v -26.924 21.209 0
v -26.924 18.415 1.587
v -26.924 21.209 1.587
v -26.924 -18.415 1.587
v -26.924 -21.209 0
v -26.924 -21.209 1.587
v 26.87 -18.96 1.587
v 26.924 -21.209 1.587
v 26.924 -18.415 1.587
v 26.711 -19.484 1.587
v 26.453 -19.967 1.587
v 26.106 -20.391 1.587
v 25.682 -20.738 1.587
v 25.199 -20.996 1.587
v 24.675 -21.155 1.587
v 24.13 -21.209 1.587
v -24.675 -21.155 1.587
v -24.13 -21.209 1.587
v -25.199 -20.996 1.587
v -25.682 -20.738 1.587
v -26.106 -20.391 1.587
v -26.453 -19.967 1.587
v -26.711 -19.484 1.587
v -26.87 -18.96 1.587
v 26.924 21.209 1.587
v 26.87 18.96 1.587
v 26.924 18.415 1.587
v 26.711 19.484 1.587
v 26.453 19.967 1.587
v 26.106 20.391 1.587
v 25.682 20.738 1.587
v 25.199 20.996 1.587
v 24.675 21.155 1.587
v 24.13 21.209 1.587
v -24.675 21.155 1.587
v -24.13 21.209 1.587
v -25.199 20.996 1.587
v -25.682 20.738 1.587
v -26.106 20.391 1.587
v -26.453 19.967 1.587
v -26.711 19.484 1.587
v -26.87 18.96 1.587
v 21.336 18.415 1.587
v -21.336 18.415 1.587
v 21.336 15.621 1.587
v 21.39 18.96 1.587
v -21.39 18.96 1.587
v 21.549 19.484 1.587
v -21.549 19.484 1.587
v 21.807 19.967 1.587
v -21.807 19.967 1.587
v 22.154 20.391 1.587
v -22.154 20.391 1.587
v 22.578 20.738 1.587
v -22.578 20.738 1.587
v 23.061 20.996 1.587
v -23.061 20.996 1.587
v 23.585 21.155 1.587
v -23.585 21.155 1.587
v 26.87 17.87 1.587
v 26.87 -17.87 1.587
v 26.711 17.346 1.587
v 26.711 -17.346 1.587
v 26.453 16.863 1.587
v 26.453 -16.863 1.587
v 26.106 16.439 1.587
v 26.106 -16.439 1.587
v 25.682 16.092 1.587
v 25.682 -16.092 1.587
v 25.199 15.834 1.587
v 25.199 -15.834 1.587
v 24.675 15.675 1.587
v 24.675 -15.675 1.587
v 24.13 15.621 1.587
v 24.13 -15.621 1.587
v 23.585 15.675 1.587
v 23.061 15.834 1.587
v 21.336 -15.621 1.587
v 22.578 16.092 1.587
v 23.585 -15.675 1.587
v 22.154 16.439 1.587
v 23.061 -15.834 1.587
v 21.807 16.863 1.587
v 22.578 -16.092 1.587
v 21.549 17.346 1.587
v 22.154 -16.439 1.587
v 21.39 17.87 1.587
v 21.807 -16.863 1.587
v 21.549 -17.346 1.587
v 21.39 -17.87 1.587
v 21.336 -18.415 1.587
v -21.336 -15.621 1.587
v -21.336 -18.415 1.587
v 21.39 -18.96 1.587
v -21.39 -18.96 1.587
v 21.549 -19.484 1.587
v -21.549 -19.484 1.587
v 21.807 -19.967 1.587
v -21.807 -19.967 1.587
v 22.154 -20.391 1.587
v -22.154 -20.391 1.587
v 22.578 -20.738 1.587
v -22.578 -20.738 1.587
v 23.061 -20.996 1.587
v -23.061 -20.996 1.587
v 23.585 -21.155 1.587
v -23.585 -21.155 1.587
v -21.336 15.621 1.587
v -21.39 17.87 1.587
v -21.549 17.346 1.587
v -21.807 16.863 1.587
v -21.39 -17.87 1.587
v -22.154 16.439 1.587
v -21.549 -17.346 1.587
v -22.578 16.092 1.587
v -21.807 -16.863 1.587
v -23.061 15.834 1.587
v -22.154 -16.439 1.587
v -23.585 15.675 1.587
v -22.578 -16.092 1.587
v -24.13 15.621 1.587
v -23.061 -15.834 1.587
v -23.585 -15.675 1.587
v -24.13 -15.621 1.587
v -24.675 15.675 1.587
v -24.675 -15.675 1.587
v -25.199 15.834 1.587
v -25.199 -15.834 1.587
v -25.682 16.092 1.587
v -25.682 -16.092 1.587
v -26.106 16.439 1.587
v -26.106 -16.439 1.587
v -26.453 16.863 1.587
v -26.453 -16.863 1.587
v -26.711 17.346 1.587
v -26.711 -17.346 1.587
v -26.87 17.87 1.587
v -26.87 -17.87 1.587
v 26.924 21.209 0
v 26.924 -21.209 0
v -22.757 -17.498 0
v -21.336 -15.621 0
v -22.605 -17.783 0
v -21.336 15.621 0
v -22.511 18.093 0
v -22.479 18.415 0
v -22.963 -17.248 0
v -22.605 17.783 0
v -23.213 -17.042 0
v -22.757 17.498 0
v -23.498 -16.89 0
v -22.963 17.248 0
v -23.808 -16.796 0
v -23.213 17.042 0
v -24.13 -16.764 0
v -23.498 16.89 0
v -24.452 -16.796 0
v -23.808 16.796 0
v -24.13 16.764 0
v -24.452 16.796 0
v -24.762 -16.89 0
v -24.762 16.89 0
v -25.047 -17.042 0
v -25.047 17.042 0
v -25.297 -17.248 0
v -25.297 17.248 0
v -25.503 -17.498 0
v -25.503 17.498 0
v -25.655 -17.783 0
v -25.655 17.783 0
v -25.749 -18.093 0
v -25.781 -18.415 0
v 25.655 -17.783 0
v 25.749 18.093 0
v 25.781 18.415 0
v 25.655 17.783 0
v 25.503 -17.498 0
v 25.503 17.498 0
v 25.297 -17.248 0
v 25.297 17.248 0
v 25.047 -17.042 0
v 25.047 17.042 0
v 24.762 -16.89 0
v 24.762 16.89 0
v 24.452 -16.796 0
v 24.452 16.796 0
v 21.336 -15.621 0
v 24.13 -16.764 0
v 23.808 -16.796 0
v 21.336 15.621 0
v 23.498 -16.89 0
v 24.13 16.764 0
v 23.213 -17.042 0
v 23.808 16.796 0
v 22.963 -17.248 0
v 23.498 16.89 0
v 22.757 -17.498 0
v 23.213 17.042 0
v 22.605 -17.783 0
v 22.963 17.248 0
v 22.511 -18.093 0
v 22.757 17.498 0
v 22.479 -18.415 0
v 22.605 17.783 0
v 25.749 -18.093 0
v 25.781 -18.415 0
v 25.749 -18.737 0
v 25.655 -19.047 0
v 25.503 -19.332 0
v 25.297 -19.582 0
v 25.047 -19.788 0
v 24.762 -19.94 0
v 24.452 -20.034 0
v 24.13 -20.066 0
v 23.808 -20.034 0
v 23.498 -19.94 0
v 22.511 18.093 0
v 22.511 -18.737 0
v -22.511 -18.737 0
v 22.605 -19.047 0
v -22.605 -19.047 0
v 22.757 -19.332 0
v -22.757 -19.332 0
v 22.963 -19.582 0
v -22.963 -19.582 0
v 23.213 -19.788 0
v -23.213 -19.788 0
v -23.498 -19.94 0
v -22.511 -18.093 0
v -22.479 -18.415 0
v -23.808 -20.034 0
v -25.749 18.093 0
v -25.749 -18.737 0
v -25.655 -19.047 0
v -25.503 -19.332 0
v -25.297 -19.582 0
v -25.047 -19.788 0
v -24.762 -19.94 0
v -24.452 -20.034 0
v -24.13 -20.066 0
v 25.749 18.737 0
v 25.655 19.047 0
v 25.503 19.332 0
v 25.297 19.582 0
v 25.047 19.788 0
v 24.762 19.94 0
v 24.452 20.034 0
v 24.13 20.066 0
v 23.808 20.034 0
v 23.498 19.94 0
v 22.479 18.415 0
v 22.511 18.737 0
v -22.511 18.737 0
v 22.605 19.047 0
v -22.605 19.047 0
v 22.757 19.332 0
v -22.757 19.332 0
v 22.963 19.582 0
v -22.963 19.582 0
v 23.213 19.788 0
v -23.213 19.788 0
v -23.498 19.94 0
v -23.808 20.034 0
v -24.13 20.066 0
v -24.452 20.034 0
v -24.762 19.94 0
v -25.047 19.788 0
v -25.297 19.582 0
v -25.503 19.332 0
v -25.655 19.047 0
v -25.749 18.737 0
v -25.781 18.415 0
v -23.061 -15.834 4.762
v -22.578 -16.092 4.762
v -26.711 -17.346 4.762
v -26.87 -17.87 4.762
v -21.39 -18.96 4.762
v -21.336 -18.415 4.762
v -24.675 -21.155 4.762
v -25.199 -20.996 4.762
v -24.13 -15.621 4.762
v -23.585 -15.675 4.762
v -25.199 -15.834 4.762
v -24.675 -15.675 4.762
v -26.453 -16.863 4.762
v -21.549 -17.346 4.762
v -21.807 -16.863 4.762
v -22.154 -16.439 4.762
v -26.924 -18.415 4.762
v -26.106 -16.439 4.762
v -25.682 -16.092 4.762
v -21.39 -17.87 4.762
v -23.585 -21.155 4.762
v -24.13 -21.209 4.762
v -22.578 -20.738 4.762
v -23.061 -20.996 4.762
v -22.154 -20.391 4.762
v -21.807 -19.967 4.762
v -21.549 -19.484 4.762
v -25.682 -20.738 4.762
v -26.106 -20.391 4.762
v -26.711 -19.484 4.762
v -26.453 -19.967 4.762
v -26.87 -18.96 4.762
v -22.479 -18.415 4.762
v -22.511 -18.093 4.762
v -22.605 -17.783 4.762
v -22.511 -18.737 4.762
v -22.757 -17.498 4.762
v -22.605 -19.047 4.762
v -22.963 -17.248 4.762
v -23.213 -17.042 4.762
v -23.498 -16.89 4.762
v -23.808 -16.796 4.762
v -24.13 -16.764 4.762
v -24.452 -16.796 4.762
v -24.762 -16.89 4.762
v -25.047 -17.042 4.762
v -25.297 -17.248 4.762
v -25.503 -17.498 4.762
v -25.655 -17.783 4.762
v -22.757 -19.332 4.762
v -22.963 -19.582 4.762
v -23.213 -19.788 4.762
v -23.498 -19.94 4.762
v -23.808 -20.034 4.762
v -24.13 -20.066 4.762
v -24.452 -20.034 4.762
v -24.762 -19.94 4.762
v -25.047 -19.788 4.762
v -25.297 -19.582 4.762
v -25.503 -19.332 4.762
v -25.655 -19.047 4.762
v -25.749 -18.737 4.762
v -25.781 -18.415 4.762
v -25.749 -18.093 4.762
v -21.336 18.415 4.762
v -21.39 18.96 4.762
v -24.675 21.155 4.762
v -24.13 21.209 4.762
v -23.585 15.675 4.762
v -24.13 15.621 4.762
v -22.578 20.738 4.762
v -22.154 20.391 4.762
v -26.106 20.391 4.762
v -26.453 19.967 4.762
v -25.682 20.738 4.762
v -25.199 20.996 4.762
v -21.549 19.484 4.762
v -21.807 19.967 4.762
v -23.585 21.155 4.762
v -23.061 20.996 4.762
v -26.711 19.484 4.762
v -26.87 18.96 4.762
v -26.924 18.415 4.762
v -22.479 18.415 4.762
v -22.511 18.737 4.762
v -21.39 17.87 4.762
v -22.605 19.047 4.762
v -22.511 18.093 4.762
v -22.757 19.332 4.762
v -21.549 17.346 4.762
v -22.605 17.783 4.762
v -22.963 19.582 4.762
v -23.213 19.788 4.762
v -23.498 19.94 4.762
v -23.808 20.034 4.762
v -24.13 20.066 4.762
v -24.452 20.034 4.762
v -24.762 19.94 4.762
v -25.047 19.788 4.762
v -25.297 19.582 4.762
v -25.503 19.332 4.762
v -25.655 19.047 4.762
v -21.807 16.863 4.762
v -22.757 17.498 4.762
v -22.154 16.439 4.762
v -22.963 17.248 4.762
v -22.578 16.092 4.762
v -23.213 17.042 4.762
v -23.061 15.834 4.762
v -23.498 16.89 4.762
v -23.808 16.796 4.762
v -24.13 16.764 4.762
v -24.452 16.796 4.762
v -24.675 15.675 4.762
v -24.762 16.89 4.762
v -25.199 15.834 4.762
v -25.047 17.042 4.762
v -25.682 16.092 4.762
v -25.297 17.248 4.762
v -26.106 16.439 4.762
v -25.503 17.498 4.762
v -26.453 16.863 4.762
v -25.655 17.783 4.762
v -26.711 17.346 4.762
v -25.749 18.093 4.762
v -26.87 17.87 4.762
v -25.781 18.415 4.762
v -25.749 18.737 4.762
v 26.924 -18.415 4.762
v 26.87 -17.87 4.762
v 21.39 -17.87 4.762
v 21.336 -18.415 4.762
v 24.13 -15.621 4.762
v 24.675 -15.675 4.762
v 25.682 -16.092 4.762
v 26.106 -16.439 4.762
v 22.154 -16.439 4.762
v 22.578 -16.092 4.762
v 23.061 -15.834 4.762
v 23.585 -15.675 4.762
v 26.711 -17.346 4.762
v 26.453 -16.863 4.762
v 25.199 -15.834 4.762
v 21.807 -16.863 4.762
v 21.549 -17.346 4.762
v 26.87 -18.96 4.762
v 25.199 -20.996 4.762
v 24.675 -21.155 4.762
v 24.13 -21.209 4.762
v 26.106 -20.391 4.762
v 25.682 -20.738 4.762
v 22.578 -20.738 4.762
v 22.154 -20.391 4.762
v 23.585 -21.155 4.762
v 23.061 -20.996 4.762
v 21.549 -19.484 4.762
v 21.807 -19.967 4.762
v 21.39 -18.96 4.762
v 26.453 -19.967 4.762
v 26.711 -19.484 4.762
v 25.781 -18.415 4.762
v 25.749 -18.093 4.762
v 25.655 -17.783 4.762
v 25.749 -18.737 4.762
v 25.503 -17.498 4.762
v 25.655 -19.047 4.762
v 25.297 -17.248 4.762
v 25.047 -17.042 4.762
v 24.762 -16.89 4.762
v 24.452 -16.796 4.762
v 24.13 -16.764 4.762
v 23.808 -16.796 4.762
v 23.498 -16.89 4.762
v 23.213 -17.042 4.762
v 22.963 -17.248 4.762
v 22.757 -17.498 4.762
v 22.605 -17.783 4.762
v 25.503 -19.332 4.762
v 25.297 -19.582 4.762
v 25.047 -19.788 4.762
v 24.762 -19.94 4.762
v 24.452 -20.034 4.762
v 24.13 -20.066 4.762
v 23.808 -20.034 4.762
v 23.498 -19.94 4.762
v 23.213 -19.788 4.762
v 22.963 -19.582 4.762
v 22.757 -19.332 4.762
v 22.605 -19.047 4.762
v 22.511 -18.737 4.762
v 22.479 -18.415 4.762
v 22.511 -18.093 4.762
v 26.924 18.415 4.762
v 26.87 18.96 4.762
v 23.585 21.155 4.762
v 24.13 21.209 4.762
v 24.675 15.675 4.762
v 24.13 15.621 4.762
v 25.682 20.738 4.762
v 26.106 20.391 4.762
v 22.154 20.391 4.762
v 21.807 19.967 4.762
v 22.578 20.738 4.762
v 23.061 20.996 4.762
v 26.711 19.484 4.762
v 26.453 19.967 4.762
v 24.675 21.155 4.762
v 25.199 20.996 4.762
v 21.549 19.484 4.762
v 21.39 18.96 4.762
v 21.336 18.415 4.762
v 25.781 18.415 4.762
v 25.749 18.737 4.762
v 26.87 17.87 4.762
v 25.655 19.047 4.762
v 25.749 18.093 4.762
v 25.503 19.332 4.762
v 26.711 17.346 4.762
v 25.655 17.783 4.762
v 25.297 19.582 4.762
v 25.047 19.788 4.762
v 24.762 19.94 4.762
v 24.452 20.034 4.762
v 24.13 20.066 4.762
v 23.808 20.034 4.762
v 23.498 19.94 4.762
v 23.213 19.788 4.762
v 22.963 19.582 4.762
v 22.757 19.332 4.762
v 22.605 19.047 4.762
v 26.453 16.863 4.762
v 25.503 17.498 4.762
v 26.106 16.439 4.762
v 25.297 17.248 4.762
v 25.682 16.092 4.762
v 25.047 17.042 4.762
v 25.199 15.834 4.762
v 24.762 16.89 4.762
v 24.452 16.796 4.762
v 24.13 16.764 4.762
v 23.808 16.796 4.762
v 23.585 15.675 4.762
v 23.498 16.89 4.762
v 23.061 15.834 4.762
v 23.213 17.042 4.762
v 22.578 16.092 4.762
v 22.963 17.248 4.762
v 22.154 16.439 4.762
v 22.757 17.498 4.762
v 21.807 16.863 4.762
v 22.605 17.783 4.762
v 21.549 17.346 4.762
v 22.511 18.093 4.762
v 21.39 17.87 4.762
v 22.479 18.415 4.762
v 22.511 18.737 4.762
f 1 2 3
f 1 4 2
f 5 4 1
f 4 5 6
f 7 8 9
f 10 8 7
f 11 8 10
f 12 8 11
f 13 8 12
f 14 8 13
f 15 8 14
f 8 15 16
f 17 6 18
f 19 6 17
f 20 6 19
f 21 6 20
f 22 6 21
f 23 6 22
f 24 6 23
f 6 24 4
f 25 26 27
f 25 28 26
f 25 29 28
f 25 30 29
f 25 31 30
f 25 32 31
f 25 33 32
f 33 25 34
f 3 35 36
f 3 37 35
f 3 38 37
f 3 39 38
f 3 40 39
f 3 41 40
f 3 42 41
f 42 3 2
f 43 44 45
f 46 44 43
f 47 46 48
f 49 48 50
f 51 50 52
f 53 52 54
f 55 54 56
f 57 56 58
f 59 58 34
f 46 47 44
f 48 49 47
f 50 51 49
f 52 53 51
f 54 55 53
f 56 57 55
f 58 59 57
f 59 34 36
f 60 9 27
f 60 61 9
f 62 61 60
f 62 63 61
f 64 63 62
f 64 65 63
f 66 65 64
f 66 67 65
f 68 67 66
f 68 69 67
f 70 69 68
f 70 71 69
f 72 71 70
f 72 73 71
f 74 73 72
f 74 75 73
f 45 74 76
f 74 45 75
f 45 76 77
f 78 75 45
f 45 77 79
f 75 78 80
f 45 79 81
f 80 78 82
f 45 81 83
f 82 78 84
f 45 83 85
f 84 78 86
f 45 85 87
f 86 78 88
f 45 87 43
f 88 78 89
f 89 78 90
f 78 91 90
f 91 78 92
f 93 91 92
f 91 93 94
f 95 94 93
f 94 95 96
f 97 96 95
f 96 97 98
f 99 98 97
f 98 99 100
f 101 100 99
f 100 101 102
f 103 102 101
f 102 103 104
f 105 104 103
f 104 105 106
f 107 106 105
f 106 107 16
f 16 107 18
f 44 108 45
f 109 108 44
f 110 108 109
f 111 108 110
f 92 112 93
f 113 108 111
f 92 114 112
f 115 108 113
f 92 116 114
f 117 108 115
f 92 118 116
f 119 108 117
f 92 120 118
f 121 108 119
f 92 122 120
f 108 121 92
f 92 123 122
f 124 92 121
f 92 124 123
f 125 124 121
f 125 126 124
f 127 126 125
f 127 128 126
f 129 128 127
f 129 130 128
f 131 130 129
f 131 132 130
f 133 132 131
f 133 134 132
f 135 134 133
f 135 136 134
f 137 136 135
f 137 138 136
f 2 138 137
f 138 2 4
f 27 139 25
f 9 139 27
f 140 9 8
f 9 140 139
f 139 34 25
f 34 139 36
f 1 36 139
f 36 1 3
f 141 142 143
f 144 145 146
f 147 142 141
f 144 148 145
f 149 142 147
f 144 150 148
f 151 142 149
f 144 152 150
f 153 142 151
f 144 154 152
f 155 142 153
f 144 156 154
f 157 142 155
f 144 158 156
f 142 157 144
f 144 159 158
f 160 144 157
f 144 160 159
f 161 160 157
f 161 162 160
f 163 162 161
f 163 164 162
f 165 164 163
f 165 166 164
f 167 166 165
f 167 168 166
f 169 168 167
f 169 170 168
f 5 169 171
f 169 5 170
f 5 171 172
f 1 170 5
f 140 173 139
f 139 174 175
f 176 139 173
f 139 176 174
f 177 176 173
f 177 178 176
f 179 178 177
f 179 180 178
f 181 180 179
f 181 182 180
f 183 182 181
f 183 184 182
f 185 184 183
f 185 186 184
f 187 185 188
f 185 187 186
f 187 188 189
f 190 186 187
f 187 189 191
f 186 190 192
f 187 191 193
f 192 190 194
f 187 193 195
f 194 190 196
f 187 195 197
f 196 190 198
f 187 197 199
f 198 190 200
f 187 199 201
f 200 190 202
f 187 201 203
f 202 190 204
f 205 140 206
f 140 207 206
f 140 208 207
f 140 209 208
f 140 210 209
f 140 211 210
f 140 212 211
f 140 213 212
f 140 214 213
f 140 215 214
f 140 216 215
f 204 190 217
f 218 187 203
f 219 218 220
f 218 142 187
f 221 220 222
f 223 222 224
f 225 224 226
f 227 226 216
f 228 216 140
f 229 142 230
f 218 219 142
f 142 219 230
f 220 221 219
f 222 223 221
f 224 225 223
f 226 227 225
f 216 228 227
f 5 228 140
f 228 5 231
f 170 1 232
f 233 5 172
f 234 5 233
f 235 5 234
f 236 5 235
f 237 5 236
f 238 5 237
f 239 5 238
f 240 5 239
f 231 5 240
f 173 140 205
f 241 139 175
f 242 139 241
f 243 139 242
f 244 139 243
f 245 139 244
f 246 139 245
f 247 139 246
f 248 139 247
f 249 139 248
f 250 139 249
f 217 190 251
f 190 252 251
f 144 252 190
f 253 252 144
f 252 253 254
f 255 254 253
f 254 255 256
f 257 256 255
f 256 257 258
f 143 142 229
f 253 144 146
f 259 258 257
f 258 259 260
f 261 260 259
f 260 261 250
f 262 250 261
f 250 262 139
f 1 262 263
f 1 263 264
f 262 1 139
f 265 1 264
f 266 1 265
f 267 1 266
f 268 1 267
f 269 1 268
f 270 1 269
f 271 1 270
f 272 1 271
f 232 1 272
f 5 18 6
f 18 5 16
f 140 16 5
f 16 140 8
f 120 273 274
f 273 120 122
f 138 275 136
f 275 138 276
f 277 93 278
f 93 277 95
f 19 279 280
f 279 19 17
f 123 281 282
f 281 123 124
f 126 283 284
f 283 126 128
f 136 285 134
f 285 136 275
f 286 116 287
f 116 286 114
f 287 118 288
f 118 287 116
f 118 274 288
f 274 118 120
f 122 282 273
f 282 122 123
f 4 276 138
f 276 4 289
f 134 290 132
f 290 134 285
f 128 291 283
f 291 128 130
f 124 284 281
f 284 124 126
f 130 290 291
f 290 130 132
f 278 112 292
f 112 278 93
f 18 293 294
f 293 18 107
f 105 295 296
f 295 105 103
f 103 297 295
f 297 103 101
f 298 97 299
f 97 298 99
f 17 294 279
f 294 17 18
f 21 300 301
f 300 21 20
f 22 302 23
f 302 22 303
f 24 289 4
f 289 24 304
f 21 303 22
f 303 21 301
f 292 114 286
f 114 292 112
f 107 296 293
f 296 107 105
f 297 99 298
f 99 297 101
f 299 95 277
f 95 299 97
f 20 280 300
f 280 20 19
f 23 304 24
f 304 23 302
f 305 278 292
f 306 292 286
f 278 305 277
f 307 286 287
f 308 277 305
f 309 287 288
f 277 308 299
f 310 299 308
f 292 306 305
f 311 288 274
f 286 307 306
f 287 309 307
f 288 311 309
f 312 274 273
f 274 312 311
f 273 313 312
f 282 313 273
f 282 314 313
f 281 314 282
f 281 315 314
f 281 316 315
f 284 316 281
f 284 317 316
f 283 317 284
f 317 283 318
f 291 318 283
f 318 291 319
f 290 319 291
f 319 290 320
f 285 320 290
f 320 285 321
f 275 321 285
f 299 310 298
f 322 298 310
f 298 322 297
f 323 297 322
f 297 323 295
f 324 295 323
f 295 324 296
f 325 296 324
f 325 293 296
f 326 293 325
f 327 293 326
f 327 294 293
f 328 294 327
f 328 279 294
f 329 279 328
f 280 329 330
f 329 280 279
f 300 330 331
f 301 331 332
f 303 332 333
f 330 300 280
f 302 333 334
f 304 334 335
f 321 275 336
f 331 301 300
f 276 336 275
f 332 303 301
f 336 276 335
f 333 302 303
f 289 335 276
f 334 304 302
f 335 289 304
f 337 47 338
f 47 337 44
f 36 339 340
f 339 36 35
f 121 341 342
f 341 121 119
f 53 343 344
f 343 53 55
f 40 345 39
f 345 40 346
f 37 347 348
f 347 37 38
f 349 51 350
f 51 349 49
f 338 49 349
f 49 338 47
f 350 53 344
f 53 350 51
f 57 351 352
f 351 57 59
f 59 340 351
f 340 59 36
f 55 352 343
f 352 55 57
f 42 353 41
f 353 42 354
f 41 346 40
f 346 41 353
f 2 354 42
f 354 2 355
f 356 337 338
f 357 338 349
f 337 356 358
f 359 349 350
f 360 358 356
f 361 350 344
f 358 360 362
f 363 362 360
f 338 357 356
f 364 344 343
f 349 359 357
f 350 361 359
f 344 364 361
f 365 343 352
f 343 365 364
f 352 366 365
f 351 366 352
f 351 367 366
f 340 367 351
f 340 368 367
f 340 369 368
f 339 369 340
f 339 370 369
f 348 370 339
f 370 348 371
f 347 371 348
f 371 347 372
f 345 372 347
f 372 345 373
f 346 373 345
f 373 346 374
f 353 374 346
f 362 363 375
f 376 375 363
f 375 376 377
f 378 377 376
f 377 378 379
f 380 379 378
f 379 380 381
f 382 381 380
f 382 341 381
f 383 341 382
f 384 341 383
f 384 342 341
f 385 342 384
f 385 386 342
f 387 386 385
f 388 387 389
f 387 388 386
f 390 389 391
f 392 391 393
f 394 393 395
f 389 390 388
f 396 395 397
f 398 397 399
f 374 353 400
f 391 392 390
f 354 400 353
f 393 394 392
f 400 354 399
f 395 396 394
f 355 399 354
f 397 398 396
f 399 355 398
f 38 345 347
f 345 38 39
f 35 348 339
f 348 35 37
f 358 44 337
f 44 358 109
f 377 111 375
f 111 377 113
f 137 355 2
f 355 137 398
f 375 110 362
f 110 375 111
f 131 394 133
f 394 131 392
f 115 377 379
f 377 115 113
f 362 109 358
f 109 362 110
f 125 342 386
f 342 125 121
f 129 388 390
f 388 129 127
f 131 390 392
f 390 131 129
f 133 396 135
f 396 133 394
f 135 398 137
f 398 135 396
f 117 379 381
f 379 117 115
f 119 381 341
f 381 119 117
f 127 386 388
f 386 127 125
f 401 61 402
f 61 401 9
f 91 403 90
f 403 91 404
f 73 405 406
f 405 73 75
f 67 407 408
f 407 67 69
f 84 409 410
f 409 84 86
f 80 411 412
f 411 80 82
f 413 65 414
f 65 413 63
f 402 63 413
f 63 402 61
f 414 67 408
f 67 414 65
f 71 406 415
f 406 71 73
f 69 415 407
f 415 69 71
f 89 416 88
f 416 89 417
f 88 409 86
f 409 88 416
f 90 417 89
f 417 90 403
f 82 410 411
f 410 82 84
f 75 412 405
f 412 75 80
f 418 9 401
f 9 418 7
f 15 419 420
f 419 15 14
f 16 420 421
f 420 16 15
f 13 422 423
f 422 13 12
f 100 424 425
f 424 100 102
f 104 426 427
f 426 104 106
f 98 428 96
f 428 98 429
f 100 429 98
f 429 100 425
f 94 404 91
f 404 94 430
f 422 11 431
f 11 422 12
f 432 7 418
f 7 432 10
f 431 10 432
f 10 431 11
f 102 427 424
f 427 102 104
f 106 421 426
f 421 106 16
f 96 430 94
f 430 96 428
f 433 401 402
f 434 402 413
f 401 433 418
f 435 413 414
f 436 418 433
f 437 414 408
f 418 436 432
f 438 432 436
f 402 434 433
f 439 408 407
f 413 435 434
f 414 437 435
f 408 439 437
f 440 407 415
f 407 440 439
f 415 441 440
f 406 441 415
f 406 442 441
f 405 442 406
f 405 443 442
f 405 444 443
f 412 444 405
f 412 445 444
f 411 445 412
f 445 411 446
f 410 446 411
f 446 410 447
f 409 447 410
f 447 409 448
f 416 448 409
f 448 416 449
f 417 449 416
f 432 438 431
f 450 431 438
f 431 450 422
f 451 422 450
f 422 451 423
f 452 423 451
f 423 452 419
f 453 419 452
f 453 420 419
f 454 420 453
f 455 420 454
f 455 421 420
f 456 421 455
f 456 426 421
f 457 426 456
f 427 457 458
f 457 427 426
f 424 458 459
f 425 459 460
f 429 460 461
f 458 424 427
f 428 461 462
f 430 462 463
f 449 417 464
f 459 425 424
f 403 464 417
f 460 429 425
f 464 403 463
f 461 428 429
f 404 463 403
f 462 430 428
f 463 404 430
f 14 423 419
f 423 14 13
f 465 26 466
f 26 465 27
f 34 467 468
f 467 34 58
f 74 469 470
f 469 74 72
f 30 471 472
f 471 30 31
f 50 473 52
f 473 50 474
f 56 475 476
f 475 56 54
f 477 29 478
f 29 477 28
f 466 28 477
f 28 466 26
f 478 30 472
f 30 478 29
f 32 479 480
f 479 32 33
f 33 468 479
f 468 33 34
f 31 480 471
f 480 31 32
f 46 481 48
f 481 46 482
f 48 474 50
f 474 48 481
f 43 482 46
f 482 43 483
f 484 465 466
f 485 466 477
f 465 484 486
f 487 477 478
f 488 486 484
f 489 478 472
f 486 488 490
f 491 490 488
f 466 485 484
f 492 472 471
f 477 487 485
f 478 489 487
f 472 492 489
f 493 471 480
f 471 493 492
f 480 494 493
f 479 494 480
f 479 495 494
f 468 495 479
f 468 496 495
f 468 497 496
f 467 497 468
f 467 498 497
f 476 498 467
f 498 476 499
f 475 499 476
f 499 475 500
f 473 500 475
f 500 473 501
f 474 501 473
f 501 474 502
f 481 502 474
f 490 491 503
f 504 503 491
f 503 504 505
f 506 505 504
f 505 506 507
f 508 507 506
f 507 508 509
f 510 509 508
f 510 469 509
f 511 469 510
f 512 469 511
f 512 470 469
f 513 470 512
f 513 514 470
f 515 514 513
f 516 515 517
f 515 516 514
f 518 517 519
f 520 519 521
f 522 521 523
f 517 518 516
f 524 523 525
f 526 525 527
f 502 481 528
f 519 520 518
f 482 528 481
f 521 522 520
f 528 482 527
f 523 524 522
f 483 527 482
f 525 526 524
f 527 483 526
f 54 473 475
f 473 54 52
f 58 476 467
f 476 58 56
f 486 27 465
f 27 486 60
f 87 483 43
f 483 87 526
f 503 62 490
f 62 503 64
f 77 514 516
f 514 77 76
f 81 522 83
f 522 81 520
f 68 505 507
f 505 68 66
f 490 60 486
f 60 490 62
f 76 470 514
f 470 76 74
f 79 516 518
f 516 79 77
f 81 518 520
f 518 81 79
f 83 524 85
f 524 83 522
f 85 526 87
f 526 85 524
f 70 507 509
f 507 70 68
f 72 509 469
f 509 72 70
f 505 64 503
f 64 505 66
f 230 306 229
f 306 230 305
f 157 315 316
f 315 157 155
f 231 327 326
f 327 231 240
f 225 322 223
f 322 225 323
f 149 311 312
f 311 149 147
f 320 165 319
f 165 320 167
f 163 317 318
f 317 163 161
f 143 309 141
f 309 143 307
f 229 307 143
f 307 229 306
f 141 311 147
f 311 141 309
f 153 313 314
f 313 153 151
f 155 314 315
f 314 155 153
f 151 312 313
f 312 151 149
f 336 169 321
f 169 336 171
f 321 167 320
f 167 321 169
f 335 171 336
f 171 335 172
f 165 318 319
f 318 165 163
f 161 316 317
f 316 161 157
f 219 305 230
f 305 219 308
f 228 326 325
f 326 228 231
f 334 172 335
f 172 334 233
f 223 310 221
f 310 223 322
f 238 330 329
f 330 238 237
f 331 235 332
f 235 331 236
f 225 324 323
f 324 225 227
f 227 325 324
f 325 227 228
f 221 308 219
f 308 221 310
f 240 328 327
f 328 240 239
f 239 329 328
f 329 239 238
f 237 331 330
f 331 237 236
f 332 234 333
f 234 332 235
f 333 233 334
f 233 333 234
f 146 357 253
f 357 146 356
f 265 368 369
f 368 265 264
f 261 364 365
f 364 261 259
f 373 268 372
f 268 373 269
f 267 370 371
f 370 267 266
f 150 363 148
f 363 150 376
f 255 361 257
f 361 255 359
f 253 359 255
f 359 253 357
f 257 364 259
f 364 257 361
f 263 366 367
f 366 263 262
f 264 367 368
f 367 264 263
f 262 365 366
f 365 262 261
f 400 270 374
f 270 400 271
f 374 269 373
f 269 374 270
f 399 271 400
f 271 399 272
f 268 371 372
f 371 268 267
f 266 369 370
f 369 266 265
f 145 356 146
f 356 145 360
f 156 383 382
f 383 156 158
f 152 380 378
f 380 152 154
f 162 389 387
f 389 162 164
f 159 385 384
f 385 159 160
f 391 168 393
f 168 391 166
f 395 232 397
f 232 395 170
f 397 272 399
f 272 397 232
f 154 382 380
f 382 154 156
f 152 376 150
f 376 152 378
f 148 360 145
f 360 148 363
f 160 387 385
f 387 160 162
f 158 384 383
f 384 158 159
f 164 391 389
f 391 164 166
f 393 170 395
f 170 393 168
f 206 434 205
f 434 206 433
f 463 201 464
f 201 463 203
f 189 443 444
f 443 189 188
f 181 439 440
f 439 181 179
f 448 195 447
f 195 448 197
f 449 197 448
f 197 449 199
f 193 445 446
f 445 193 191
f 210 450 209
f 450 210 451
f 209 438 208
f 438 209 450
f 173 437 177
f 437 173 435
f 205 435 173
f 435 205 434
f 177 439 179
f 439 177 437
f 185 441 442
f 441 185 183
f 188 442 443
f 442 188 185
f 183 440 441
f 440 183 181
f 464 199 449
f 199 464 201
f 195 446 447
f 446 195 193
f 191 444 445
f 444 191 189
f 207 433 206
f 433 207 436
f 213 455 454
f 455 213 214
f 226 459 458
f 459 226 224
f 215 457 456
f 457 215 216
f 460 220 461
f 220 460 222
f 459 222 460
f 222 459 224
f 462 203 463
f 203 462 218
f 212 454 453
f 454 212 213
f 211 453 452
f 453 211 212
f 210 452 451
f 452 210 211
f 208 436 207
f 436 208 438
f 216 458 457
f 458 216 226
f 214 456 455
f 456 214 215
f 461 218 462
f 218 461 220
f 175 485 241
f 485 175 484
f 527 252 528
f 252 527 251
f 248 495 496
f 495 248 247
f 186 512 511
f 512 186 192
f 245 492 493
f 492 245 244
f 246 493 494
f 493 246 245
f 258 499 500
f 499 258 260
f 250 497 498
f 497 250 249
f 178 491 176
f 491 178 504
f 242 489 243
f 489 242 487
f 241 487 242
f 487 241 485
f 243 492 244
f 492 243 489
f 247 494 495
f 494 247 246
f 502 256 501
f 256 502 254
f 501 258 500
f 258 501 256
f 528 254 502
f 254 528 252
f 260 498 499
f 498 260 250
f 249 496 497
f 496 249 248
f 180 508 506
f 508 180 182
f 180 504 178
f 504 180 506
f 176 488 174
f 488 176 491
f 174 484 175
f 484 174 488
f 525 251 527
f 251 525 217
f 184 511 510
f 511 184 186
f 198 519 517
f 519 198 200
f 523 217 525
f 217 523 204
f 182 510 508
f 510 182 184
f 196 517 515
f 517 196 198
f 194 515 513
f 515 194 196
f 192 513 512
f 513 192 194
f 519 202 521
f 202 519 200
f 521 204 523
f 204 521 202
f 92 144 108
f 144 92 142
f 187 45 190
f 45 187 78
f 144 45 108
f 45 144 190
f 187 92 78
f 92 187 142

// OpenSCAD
// OpenSCAD 2019.05
// K5TRA USB 119B spacer frame, REV-001
// Joe Haas, KE0FF, 2/15/2023
// This is a clip for the IC7K frame prop rod.
//
// Rev-001, 2/15/2023
//	initial code

//use <char.scad>

// Version 1 and 2 are 0.2" larger in the X dimension.
//	Set "version" to match the target version PCB

version = 3;

//----------------------------------------------------------------------------------------------------------------------
// User defined parameters.  Modify these to suit a particular application
// NOTE: All operational data in this file is in mm
in2mm = 25.4;
mm2in = 1/in2mm;

//----------------------------------------------------------------------------------------------------------------------
// parametric variables:

x1 = 2.3*in2mm;
y1 = 1.85*in2mm;
z1 = 1;

x2 = 2.12*in2mm;
y2 = 1.67*in2mm;
z2 = (1/16)*in2mm;

x3 = 1.68*in2mm;
y3 = 1.23*in2mm;
z3 = -1;
z3t = 20;

bdia = .22*in2mm;
sdia = 0.13 * in2mm;			// MTG hole dia
bz = (3/16)*in2mm;

flat_dia = 0.2 * in2mm;
flat_ht = 0.1 * in2mm;

/////////////////////////////////////

if(version<3){
	body(dwid=.2*in2mm);
}else{
	body();
}
//translate([0,0,(z1/2)+bz]) cube([x1,y1,z1], center = true);

//////////////////****************\\\\\\\\\\\\\\\\\\
				//    modules     \\
//////////////////****************\\\\\\\\\\\\\\\\\\

///////////////
// 
// dwid "stretches" the X dimension (it is zero by default)

module body(dwid = 0){
	xm = x2+dwid;
	difference(){
		union(){
			translate([0,0,z2/2]) cube([xm,y2,z2], center = true);
			// bosses
			translate([-(xm/2)+(bdia/2),-(y2/2)+(bdia/2),0]) cylinder(r=bdia/2, h=bz, $fn=32);
			translate([-(xm/2)+(bdia/2),+(y2/2)-(bdia/2),0]) cylinder(r=bdia/2, h=bz, $fn=32);
			translate([+(xm/2)-(bdia/2),-(y2/2)+(bdia/2),0]) cylinder(r=bdia/2, h=bz, $fn=32);
			translate([+(xm/2)-(bdia/2),+(y2/2)-(bdia/2),0]) cylinder(r=bdia/2, h=bz, $fn=32);
		}
		// holes
		translate([-(xm/2)+(bdia/2),-(y2/2)+(bdia/2),-1]) cylinder(r=sdia/2, h=bz+4, $fn=32);
		translate([-(xm/2)+(bdia/2),+(y2/2)-(bdia/2),-1]) cylinder(r=sdia/2, h=bz+4, $fn=32);
		translate([+(xm/2)-(bdia/2),-(y2/2)+(bdia/2),-1]) cylinder(r=sdia/2, h=bz+4, $fn=32);
		translate([+(xm/2)-(bdia/2),+(y2/2)-(bdia/2),-1]) cylinder(r=sdia/2, h=bz+4, $fn=32);
		// center hogout
		translate([0,0,(z3t/2)+z3]) cube([x3,y3,z3t], center = true);
		
	}
}

/////////////////////////
// csk hole (from top)

module csk_hole(len=20){
	translate([0,0,-.01]) cylinder(r=flat_dia/2, h=flat_ht, $fn = 32);
	translate([0,0,-flat_ht+.01]) cylinder(r2=flat_dia/2, r1=0, h=flat_ht, $fn = 32);
	translate([0,0,-len+.01]) cylinder(r=screw_dia/2, h=len, $fn = 32);
}

/////////////////////////
// drill hole (from top)

module drill_hole(len=20){
	translate([0,0,-len+.01]) cylinder(r=thread_dia/2, h=len, $fn = 32);
}

/////////////////////////
// coax_channel (from top)

module coax_channel(clen = 20){
	rotate([0,90,0]) cylinder(r=coax_dia/2, h=clen, $fn = 16);
	translate([clen/2,0,coax_dia/4]) cube([clen,coax_dia,coax_dia/2], center = true);
}

// EOF
